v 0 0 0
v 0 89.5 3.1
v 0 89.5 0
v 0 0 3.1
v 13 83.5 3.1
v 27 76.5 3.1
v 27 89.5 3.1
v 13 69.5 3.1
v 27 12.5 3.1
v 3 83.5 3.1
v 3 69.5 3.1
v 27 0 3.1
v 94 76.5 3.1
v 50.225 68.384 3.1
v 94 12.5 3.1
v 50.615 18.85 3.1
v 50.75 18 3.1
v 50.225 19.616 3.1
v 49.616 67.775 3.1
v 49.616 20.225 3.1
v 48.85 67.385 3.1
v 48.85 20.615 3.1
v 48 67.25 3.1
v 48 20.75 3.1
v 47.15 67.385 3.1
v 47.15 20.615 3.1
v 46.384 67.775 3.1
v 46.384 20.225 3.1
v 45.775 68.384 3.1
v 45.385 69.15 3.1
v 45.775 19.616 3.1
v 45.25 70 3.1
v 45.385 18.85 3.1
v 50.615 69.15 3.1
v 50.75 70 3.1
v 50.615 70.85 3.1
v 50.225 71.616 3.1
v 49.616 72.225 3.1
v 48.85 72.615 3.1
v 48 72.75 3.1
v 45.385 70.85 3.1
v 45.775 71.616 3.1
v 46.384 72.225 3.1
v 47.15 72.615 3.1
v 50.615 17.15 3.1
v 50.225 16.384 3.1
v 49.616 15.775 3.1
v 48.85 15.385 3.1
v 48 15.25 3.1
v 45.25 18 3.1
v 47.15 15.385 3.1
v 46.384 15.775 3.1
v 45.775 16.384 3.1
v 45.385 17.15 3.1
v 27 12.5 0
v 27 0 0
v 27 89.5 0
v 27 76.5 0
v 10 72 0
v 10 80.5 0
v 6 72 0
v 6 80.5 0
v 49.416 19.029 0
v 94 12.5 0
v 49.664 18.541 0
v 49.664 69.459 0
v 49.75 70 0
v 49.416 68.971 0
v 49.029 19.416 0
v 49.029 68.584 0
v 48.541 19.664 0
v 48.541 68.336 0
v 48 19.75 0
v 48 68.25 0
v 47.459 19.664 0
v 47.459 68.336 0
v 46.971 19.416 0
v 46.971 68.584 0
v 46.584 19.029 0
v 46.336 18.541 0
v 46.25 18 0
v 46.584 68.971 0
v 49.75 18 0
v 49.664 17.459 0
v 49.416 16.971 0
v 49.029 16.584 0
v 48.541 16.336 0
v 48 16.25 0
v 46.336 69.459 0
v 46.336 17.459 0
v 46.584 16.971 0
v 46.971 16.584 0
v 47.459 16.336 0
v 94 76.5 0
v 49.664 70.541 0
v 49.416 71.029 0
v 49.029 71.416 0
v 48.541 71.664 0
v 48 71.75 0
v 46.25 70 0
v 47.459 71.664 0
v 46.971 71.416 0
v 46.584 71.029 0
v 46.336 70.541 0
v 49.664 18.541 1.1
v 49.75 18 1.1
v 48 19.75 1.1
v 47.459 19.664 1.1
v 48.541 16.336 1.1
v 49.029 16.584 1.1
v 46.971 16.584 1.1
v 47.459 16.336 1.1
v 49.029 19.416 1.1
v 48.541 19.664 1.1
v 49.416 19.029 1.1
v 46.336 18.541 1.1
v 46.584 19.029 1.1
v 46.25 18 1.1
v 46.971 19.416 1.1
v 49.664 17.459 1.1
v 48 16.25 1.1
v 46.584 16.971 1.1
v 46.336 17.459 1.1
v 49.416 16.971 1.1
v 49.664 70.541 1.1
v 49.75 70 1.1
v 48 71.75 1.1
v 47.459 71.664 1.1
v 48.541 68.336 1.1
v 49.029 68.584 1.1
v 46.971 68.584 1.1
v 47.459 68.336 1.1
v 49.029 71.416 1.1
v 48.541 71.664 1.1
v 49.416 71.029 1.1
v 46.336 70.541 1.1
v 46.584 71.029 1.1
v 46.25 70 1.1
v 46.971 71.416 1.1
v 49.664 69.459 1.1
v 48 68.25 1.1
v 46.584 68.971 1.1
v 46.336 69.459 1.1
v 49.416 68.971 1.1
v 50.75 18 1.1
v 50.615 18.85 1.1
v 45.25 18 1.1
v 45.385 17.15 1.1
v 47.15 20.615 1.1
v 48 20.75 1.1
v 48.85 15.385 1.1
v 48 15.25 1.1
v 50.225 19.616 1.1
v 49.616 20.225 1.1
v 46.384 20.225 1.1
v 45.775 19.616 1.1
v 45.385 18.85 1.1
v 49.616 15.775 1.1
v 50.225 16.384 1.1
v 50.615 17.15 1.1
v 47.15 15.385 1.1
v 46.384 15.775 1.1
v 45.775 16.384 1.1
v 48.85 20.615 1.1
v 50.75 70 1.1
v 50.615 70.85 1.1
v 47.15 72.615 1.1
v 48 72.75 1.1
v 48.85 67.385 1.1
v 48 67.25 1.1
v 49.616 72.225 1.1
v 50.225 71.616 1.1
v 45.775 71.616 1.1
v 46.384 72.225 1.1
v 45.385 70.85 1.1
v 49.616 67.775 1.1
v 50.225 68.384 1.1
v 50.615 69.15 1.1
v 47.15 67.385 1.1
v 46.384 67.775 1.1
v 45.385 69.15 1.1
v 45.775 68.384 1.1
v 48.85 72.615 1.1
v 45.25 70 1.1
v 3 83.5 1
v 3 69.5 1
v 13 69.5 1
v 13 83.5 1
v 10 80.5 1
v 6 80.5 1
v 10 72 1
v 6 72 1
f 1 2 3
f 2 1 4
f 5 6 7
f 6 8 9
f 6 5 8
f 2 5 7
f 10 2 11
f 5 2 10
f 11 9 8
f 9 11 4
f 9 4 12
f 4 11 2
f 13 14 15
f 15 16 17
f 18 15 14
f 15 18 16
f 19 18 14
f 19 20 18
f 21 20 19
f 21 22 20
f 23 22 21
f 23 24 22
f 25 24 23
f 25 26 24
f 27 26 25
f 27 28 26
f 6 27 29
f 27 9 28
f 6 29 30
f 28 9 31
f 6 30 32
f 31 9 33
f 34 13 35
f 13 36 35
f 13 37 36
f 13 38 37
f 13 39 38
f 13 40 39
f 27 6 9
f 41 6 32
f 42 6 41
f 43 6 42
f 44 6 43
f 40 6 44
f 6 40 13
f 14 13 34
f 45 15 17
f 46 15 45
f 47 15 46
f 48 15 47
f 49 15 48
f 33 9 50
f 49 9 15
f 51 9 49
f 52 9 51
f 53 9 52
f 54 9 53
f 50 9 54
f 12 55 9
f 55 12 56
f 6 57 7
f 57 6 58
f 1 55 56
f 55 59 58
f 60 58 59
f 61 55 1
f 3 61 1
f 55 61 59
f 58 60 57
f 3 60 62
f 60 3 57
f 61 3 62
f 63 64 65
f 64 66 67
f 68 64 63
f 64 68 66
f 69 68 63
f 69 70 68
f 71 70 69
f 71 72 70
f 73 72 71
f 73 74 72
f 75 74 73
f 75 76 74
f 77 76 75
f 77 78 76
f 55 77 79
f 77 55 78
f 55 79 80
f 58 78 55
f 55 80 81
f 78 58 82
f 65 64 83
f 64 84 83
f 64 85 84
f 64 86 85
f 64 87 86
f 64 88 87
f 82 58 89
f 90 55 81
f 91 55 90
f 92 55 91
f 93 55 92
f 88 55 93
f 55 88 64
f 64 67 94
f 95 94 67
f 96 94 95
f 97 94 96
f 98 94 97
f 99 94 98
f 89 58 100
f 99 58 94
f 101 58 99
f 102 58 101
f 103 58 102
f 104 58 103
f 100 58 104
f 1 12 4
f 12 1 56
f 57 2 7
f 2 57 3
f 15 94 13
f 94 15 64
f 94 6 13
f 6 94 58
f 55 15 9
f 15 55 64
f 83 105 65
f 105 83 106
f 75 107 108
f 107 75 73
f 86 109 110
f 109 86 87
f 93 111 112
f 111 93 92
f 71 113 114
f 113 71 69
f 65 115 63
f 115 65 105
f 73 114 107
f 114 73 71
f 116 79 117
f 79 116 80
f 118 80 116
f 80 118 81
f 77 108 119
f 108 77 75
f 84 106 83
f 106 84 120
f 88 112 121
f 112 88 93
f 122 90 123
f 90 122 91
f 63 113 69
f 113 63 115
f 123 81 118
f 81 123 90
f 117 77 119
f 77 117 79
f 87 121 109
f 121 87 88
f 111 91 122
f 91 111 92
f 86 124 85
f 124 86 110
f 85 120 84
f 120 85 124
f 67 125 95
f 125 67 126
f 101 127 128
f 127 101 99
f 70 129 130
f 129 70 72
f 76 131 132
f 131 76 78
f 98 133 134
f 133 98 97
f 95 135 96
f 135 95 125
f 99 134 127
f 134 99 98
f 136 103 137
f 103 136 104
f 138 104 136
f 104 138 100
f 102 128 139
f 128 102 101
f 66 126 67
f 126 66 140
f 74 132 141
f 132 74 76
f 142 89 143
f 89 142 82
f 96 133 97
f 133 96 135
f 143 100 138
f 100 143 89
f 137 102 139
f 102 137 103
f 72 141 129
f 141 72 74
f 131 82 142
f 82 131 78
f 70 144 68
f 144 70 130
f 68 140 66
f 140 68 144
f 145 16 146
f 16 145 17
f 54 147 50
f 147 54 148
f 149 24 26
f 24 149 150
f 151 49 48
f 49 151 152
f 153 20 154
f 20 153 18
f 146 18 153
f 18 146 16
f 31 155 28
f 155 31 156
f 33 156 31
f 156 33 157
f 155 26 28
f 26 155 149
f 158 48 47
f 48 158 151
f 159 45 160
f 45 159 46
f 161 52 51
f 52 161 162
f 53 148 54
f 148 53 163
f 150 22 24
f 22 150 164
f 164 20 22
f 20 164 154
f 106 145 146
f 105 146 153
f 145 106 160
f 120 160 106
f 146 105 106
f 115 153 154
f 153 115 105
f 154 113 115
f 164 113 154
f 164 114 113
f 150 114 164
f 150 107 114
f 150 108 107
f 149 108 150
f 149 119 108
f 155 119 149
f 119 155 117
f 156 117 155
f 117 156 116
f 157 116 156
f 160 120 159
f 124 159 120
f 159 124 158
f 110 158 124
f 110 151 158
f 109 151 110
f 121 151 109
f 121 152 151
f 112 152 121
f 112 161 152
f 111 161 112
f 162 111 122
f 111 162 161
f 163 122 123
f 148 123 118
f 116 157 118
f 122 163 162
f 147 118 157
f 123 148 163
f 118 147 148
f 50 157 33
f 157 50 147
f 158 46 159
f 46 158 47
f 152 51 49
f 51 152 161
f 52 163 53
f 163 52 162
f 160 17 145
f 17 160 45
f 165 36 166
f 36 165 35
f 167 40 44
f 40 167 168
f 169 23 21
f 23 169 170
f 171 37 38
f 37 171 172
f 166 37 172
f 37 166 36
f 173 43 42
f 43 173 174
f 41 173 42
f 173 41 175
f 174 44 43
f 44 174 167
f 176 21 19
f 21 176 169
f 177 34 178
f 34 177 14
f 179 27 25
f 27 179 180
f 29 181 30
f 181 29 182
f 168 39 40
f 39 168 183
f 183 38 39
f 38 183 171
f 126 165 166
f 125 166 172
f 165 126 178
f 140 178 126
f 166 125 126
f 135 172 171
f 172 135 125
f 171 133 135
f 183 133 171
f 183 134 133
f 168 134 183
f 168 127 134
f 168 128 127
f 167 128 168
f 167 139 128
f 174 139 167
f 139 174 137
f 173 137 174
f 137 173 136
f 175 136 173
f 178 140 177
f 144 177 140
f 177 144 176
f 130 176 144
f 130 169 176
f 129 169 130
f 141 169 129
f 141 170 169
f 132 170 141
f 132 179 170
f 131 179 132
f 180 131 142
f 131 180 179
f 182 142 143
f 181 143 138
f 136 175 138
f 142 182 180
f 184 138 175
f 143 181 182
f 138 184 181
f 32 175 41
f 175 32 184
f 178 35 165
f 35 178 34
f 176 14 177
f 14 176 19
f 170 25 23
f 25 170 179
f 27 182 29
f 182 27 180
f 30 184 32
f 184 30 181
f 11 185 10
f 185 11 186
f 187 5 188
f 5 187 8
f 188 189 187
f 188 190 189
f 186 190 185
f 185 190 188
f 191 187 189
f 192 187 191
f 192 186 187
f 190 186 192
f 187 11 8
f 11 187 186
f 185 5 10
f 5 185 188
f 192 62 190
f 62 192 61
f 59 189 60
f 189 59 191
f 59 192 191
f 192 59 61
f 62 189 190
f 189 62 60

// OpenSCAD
// file: alsaCam.scad
//creaAlsaCamara(5);
alsaCamTorR = 1;

// creaAlsaCamara(10);

module creaAlsaCamara( intAlsaCamH )
{    
    difference(){

        translate([-13,-2.9,0])
        cube([26,17,intAlsaCamH]);

        //Tornillos camara
        translate([-10,12,-0.1])
        cylinder(r=alsaCamTorR,intAlsaCamH+0.4,$fn=20);
        translate([10,12,-0.1])
        cylinder(r=alsaCamTorR,intAlsaCamH+0.4,$fn=20);
        translate([-10,-1,-0.1])
        cylinder(r=alsaCamTorR,intAlsaCamH+0.4,$fn=20);
        translate([10,-1,-0.1])
        cylinder(r=alsaCamTorR,intAlsaCamH+0.4,$fn=20);

    }
}
// file: ../../Letras.scad
if(0)
{
logo(10,2,2,4);
}

//dMin(10,2,2);
module dMin(iSize,iPared,iH)
{
    translate([iPared*1.59,0,0])
    {
    cMin(iSize*.53,iPared*.53,iH);
    translate([iPared*.75,0,0])
    cube([iPared,iSize,iH]);
    }
}

module tMin(iSize,iPared,iH)
{
  iSize = iSize*0.9;
  translate([0,iSize*.1,0])
  {
  difference()
  {
    hull()
    {
      translate([-iPared*.7,0,0])
      cube([iPared,iSize*1,iH]);

      cube([iSize*.4,iPared,iH]);

      translate([-iPared*.3,0,0])
      cylinder( r=(iPared*0.6), iH, $fn=100 );     
    }
    
    translate([iPared,iPared,-0.1])
    hull()
    {
      translate([-iPared*.7,0,0])
      cube([iPared,iSize*1,iH]);

      cube([iSize*.4,iPared,iH]);

      translate([-iPared*.35,0,0])
      cylinder( r=(iPared*0.6), iH+2, $fn=100 );     
    }
    
    translate([iSize*.28,-iSize*.4,-0.1])
    cube([iSize,iSize,iH+2]);
    
  }
  
  translate([-(iSize*.35),iSize*.6,0])
  cube([iSize*.6,iPared,iH]);
  
  }
        
}


module eLe(iSize,iPared,iH)
{
    translate([-iPared*.7,0,0])
    cube([iPared,iSize*1,iH]);
    
    cube([iSize*.4,iPared,iH]);
}

module hMin(iSize,iPared,iH)
{
    puente(iSize,iPared,iH);
    
    translate([-iPared*.7,0,0])
    cube([iPared*.85,iSize*1,iH]);
   
}

module nMin(iSize,iPared,iH)
{
    puente(iSize,iPared,iH);
    
    translate([-iPared*.7,0,0])
    cube([iPared*.85,iSize*.57,iH]);
   
}

module cMin(iSize,iPared,intcH)
{
    translate([0,iSize*0.6,0])
    {
    difference()
    {
        oMin(iSize, intcH);
        
        translate([0,-iPared*1.15,-0.1])
        cube([iSize*.8,iPared*2.2,intcH+1]);
    }
    }
}




module Te(iSize, iPared)
{
    translate([-(iPared*1/2),0,0])
    cube( [iPared*1, iSize, leth] );
    
    translate([-(iSize*0.8)/2,iSize-iPared*1,0])
    cube( [iSize*0.8,iPared*1, leth] );
}

module oMin(intoSize, intoH)
{
  difference()
  {
    cylinder( r=(intoSize*0.6), intoH, $fn=100 );
    
    translate([0,0,-0.1])
    cylinder( r=(intoSize*0.3), intoH*2, $fn=100 );
    //cylinder( r=(iSize/2)-iPared, iH+1, $fn=100 );
  }
}



module eMin(iSize,iPared,inteH)
{
    rotate([0,0,10])
    translate([0,iSize*0.0,0])
    {
    difference()
    {
        translate()
        cMin(iSize, iPared*1.8, inteH);
        
        translate([0,-iPared*1.3,-0.1])
        cube([iSize*.8,iPared,inteH+1]);
    }
    
    rotate([0,0,15])
    translate([-iSize*.15,iPared*4,0])
    cube([iSize*.9,iPared*3.5,inteH]);
    }
}

module De(iSize,iPared,iH)
{
  translate([0, iSize/2, 0])
  difference()
  {
      mediaLuna(iSize, iH);
      
      translate([-(iSize*0.08), 0, -0.5])
      mediaLuna(iSize*0.8, iH+1);
  }
  
  translate([0,iPared*.2,0])
  cube([iPared*.8, iSize*.9, iH]);
}


module mediaLuna(iSize, iH)
{
  difference()
  {
    cylinder( r=iSize/2, iH, $fn=100 );
      
    translate([-iSize, -iSize/2, -0.1])
    cube(iSize,iSize,iH);
  }
}

module puente(iSize,iPared,iH)
{
    
    difference()
    {
        
    hull()//Exterior
    {
        translate([iSize*0.37,iSize*0.45,0])
        cylinder(r=iPared*.5,iH,$fn=50);
        
        cube([iSize*0.45,iSize*0.51,iH]);
    }
    
    translate([-iPared*.8,-iPared*.8,-0.1])
    hull()//Interior
    {
        translate([iSize*0.42,iSize*0.5,0])
        cylinder(r=iPared*.3,iH,$fn=50);
        
        cube([iSize*0.47,iSize*0.47,iH+1]);
    }
    
    }
}

module oCua(iSize,iH)
{
    cube([iSize*0.4,iSize*0.4,iH]);
    
    translate([iSize*0.5,0,0])
    difference()
    {
        cube([iSize*0.15,iSize*0.6,iH]);
        
        translate([-iSize*0.15,-iSize*0.11,-0.1])
        rotate([0,0,-45])
        cube([iSize*0.25,iSize*0.6,iH*2]);
        
        
        translate([-iSize*0.35,iSize*0.45,-0.1])
        rotate([0,0,-45])
        cube([iSize*0.25,iSize*0.6,iH*2]);
    }
    
    translate([-iSize*.05,iSize*0.06,0])
    difference()
    {
        translate([-iSize*.1,iSize*.445,0])
        cube([iSize*.8,iSize*0.15,iH]);
        
        translate([iSize*0.3,iSize*0.3,-0.1])
        rotate([0,0,-45])
        cube([iSize*0.25,iSize*0.6,iH*2]);
        
        translate([-iSize*0.28,iSize*0.45,-0.1])
        rotate([0,0,-45])
        cube([iSize*0.25,iSize*0.6,iH*2]);

    }
    
    
    
    
}

module logoSimple(letsize,letpared,leth,letoffset)
{
    //De(letsize,letpared,leth);
    dMin(letsize,letpared,leth);
    
    translate([(letsize*0.59)+(1*letoffset),letsize*0,0])
    oCua(letsize,leth);
    
    translate([(letsize*1.5)+(2*letoffset),0,0])
    tMin(letsize,letpared*.8,leth);   
    
    translate([(letsize*2.1)+(3*letoffset),0,0])
    eMin(letsize*.53,letpared*.3,leth);
    
    translate([(letsize*2.8)+(4*letoffset),0,0])
    cMin(letsize*.53,letpared*.53,leth);
    
    translate([(letsize*3.3)+(5*letoffset),0,0])
    hMin(letsize,letpared,leth);

    
}

module logo(letsize,letpared,leth,letoffset)
{
    //De(letsize,letpared,leth);
    dMin(letsize,letpared,leth);
    
    translate([(letsize*0.59)+(1*letoffset),letsize*0,0])
    oCua(letsize,leth);
    
    translate([(letsize*1.5)+(2*letoffset),0,0])
    tMin(letsize,letpared*.8,leth);   
    
    translate([(letsize*2.1)+(3*letoffset),0,0])
    eMin(letsize*.53,letpared*.3,leth);
    
    translate([(letsize*2.8)+(4*letoffset),0,0])
    cMin(letsize*.53,letpared*.53,leth);
    
    translate([(letsize*3.3)+(5*letoffset),0,0])
    hMin(letsize,letpared,leth);
    
    translate([(letsize*4)+(6*letoffset),leth*.75,0])
    cylinder(r=letpared*.75,leth,$fn=50);
    
    translate([(letsize*4.45)+(7*letoffset),0,0])
    nMin(letsize,letpared,leth);
    
    translate([(letsize*5.3)+(8*letoffset),0,0])
    eMin(letsize*.5,letpared*.3,leth);
    
    translate([(letsize*5.85)+(9*letoffset),0,0])
    tMin(letsize,letpared*.8,leth);

    
}
// file: Frame.scad
include <Diffracter.scad>

frameW = 80-1.5;//Real hole width - burr
frameH = 75-1.5;//Real hole height - burr
frameD = 2.5;

winW = frameW - 8;
winH = frameH - 16;

slideW = winW + 4;
slideH = winH + 10;
slideD = 0.8;

//Activate this to display
if(false)
{
  Frame();
}

module Frame()
{
difference()
{

  translate([-frameW/2,-frameH/2,0])
  cube([frameW,frameH,frameD]);

  //areaSello();
  translate([-winW/2,-winH/2,-0.1])
  cube([winW,winH,frameD*2]);

  translate([-slideW/2,-slideH/2,frameD-slideD])
  cube([slideW,slideH,2]);

}
}


module areaSello()
{
  //cylinder(r=(raspSellR/2)-1,frameD);

  translate([-(frameW)/2,-(frameH)/2,0])
  cube([frameW,frameH,frameD]);
}
// file: Camara.scad
include <Sello35GradosCorto.scad>
include <alsaCam.scad>
include <../../library.scad>


camaraPared  = 8;

tuboSellDiam = 52+3;//52mm+2 holgura
tuboSellR = tuboSellDiam / 2;
tuboSellP = 3.5;//Profundidad del sello


camCableX = 1.4;
camCableY = 20;

if( 0 )
{
    creaCamBase();
}


module creaCamBase()
{
    difference()
    {
        //Pared
        translate([-(bigW-2)/2,-(bigW-2)/2,0])
        cube( [(bigW-2),(bigW-2),camaraPared] );
        
        //Sello hembra
        translate([0,0,camaraPared-4])
        huyoMasPared(68,7,4.2,$fn=100);
        //Ahorro de material
        translate([0,0,camaraPared-4])
        huyoMasPared(42,11,4.2);
        
        //Pasa cable
        pasaCable();
        
        //Tornillos
        tornPass();
        
        
    }
    
    //translate([0,0,10])
    creaAlsaCamara( 25 );
}

module pasaCable()
{
    //Pasa cable
    rotate([0,0,90])
    translate([-15, -camCableY/2, -0.1])
    cube( [camCableX, camCableY, 20] );
}
// file: Sello35GradosCorto.scad
include <Diffracter.scad>
include <Frame.scad>
include <../../library.scad>

include <../../Letras.scad>

// 3.15° for every 100 l/mm

angulo = 35;

coberW = bigW+6;
coberH = 6;
coberOffset = 9;//Posición del tubo
coberOffset2 = 5;//Altura del tubo (-7)->(-8)
cobeSellH = 4;
cobeSellW1 = 7;
cobeSellW2 = 7;

torrRadio = 2;
conoRadio = 38.8;

camCubeW = 62;
camCubeH = 70;
camCubeD = 7;



//soporteCylinder(radio=29,altura=coberH);	
//soporteOval(ancho=28, largo=25, alto=coberH);
//soporteCylinder(radio=34,altura=coberH);
//frameSello();

if(false)
{
    translate([0,coberW/2,0])
    creaSello();
    
    
}

// translate([33,25,cobeSellH+1.1])
// %cube([40,40,1]);


module creaCamBase()
{
    difference()
    {
        //Pared
        cube( [camCubeW,camCubeH,camCubeD] );
        
        //Tornillos
        tornillosBaseCamara( camCubeD + 0.4 );
        
    }
}

module tornillosBaseCamara( intBaseCamTorH )
{
    translate( [12,4,-0.2] )
    huecoParaTornillo(intBaseCamTorH);        
    translate( [12,camCubeH-4,-0.2] )
    huecoParaTornillo(intBaseCamTorH);
    
    translate( [camCubeW-4,4,-0.2] )
    huecoParaTornillo(intBaseCamTorH);
    
    translate( [camCubeW-4,camCubeH-4,-0.2] )
    huecoParaTornillo(intBaseCamTorH);
}

module creaSello()
{
    difference()
    {
    createAll();

    translate([-100,-100,-200])
    cube([200,200,200]);
    
    translate([bigW*.22,bigW*.33,coberH-0.5])
    oCua(24,2);

    }   
}

module createAll()
{

difference()
{
areaExterna();

//Tubo Interno
translate([23-coberOffset,0,-32.9+coberOffset2])
rotate([0,-angulo,0])/*3.15 cada 100 (antes 40)*/
//cylinder (r1 = conoRadio, r2 = (51.7-6)/2, h = 70, $fn = 100);
cylinder (r1 = conoRadio, r2 = (51.7-8)/2, h = 70, $fn = 100);

//Cuadro de la pared
creaContorno();
translate([-bigW/2,-bigW/2,-40+coberH-6])
cube([bigW,bigW,40]);

//Tornillos
tornPass();

//Contorno
creaContorno();

}

//creaSelloMacho();

}



module huecoParaTornillo( intTorH )
{
    cylinder(r=torrRadio,intTorH,$fn=20);
}

module huecoParaCabezaTornillo( cabezaR,  intTorH )
{
    cylinder(r=cabezaR,intTorH,$fn=20);
}



module creaContorno()
{

 difference()
 {
   translate([-(coberW-4.5)/2,-(coberW-4.5)/2,-3])
   cube([(coberW-4.5),(coberW-4.5),coberH]);

   translate([-(coberW-15)/2,-(coberW-23)/2,-3])
   cube([(coberW-15),(coberW-23),coberH]);
 }
}



module creaSelloMacho()
{

 translate([0,0,coberH-cobeSellH])
 difference()
 {
  areaSello(frameD=cobeSellH);

  translate([-(frameW-cobeSellW1)/2,-(frameH-cobeSellW2)/2,-0.1])
  cube([frameW-cobeSellW1,frameH-cobeSellW2,cobeSellH+1]);
 }
}

module areaExterna()
{
//Cobertura
translate([-coberW/2,-coberW/2,0])
cube([coberW,coberW,coberH]);

//TuboExterno
translate([23-coberOffset,0,-33+coberOffset2])
rotate([0,-angulo,0])/*3.15 cada 100 (antes 40)*/
//cylinder(r=(51.7)/2,48);
cylinder (r1 = conoRadio+3, r2 = 51.7/2, h = 70, $fn = 100);

//Áre para sellar la cámara
translate([-45.5,-camCubeH*.5,4])
rotate([0,-angulo,0])
creaCamBase();
    
}


module recorteOval()
{
  translate([-0.4,0,-1.9])
  oval(26.8,22.9, 15, center = false);
}

module tornPass()
{
translate([-ori+4,-ori+4,-0.1])
cylinder(r=torrRadio,30);
translate([ori-4,-ori+4,-0.1])
cylinder(r=torrRadio,30);
translate([-ori+4,ori-4,-0.1])
cylinder(r=torrRadio,30);
translate([ori-4,ori-4,-0.1])
cylinder(r=torrRadio,30);
}
// file: Diffracter.scad
//include <Tapa.scad>
include <../../library.scad>


bigW = 88;
ori = bigW/2;
raspSellR = 59;
tuboH = 140;
H = 18.5 + 9;
selloH = 7;
tornR = 2;

huecoPared = 12;
huecoH = 22;
selloHembraRadio=40;

//Activate this to display
if(0)
{
//translate([0,0,bigW/2])
//rotate([0,90,0])
diffracter();


//soporteCylinder(radio=25.2,altura=3.8);

}


module diffracter(){	

difference(){

//Bloque
translate([-bigW/2,-bigW/2,0])
cube([bigW,bigW,H]);

/*
translate([
						-(bigW-huecoPared)/2,
						-(bigW-huecoPared)/2,
						(huecoH/2)
					])
		cube([
					bigW-huecoPared,
					bigW-huecoPared,
					H-huecoH]
				);*/


//Diffractador
translate([-37.25,-40,-0.1])
cube([74.5,80,5.6]);

//Macro
translate([0,0,5.4])
cylinder(r=(74.5/2),8.2,$fn=100);

//Sello de raspberry
//translate([0,0,-0.1])
//cylinder(r=(raspSellR/2)+1,2);

//Tubo
//translate([0,0,-0.1])
//cylinder(r=(52/2),200);

//Tornillos abajo
translate([-ori+4,-ori+4,-0.1])
cylinder(r=tornR,20);
translate([ori-4,-ori+4,-0.1])
cylinder(r=tornR,20);
translate([-ori+4,ori-4,-0.1])
cylinder(r=tornR,20);
translate([ori-4,ori-4,-0.1])
cylinder(r=tornR,20);

//Hueco
cylinder(r=36,H+1);

//Tornillos caja
translate([0,0,(tuboH/2)-7])
rotate([0,90,0])
tornillosArriba();

//Tornillo tripie
translate([-ori-0.1,0,(tuboH/2)+7])
rotate([0,90,0])
cylinder(r=5/2,5.31);

//Sello hembra
//translate([0,0,H-3])
//cylinder(r=selloHembraRadio,4);

}

//Sello cobertura
//translate([0,0,H-1])
//huyoMasPared(58,3,3);


}
// file: ../../library.scad
module tubo(
	h/*Altura*/,
	w/*Pared*/,
	d/*Diametro*/
){
  difference()
  {
    cylinder(r=(d/2), h);
    translate([0,0,-0.1])
    cylinder(r=(d/2)-(2*w), h+0.2);
  }
}

module huyoMasPared(
	d/*Diametro del hoyo*/,
	w/*Pared*/,
	h/*Altura*/,
){
  difference()
  {
    cylinder(r=((d+(2*w))/2), h);
    translate([0,0,-0.1])
    cylinder(r=(d/2), h+0.2);
  }
}

module cuboMasPared(
    w1, //Largo
    w2, //Ancho
    p1, //Pared
    p2, //Pared
    h   //Alto
)
{    
    difference()
    {
        translate([-(w1+(p1*2))/2,-(w2+(p2*2))/2,0])
        cube([(w1+(p1*2)),(w2+(p2*2)),h]);
        
        translate([-w1/2,-w2/2,-0.2])
        cube([w1,w2,h*2]);
        
    }
    
    
}

soporteW = 0.7;

module soporteCylinder()
{
  difference()
  {
	cylinder(r=radio,altura);

	translate([0,0,-0.1])
	cylinder(r=radio-soporteW,altura+0.2);
  }

  if(true){
  difference()
  {
	cylinder(r=radio+0.75,1);

	translate([0,0,-0.1])
	cylinder(r=radio-0.75,1.25);
  }}

}

module soporteOval()
{
  difference()
  {
	oval(w=ancho, h=largo, height=alto, center = false);

	translate([0,0,-0.1])
	oval(ancho-soporteW, largo, alto+0.2);
  }

  difference()
  {
	oval(w=ancho+1, h=largo+1, height=1, center = false);

	translate([0,0,-0.1])
	oval(w=ancho-1, h=largo-1, height=1.25, center = false);
  }

}


module oval(w,h, height, center = false)
{
  scale([1, h/w, 1]) cylinder(h=height, r=w, center=center);
}
// file: camaraCaja.scad
include <Sello35GradosCorto.scad>
include <../../library.scad>
include <Camara.scad>



//**************************
// Importados de la creación
// de la caja de raspberry pi
//**************************
pared = 4;
pared2 = 2*pared;
medPared = pared/2;

raspX = 56;//58
raspY = 85;//85
raspZ = 15.5;//15.5
raspD1 = 3.45;
raspDP = 22.5;
raspD2 = raspDP+pared2;//Altura lados
raspAlza = 2.6;//2.6
//**************************

cajaBaCamH = 5;
camCableX = 1;

if( 0 )
{
    mainCaja();
}


module mainCaja()
{
//translate([0,0,1])
difference()
{
    
    creaCaja();
    
    translate([-(bigW+2)/2,-(bigW+2)/2,-0.1])
    cube([bigW+2,bigW+2,3]);
}

creaTrabes();

}



trabesH = 2.7;
module creaTrabes()
{
    translate([-29,-20,0])
    cube([58,2,trabesH]);
    
    translate([-29,-39,0])
    cube([58,2,trabesH]);
    
    translate([-20,0,0])
    cube([49,2,trabesH]);
    
    translate([-29.5,0,0])
    cube([5.5,2,trabesH]);
    
    translate([-29,37,0])
    cube([58,2,trabesH]);
    
    translate([-29,17,0])
    cube([58,2,trabesH]);
    
    translate([-1,-37,0])
    cube([2,74,trabesH]);

    
}


//
//translate([20,-46,-5])
//%cube([13,13,13]);

module creaCaja()
{
    difference()
    {
        //Toda el área
        //translate([0,-1,2])//Pone a nivel
        camBaCajAreaExterna();
        
        //Pasa Cable
        pasaCable();
        
         //Tornillos
        tornPass();
                
    }
    
   
   
    

    
    
    
    
    
    

    
}

module pasaCable()
{
    //Pasa cable
    //rotate([0,0,-90])
    translate([-(camCubeW/2)+8, -camCableY/2, -0.1])
    cube( [camCableX, camCableY, 20] );
}

module camBaCajAreaExterna()
{
    //Pared
    translate([-(coberW/2),-(coberW/2), 0])
    cube([coberW,coberW,6]);
    
    //Caja de raspberry pi
    translate([-(raspX/2)+3,(-raspY/2),2])
    camaraBaseCaja();
    
    
    
    
    //cube( [camCubeW,camCubeH,camaraPared] );
    
}



module camaraBaseCaja()
{

difference()
{
bigCaja();

translate([-medPared,-medPared, raspD2-pared+0.1])
cube([raspX+pared,raspY+pared,pared]);

translate([2.4,-medPared-(medPared/2),pared+raspAlza+1.3])
cube([16,medPared,11.3]);

translate([2.4,-pared-(medPared/2)-0.1,pared+raspAlza+1.3])
cube([16,medPared,11.3]);

}
}



module bigCaja()
{
crearRaspCard();
ladoConnector();
ladoUSB();
ladoMiniSD();
ladoPines();
}


module ladoPines()
{
translate([raspX,-pared,0])
cube([pared,raspY+pared2,raspD2]);
}


module ladoMiniSD()
{
difference()
{
translate([-pared,raspY,0])
cube([raspX+pared+1,pared,raspD2]);

translate([(raspX/2)-8,raspY-1,pared])
cube([15,medPared+1,50]);
}

}

module ladoUSB()
{

difference()
{

translate([-pared,-pared,0])
cube([raspX+pared+1,pared,raspD2]);

translate([1,-medPared,pared+raspAlza])
cube([54,medPared+0.1,22]);

}

}





module ladoConnector()
{


translate([-pared,-1,raspD2-pared])
cube([medPared,raspY+2,pared]);

difference()
{
translate([-pared,-1,0])
cube([pared,raspY+2,raspD2]);

translate([-pared-1,raspY-16.4,5.8])
cube([2.2,12,8]);

translate([-2,27.5,pared+2])
cube([3.1,35,25]);

translate([-1,68.5,pared+2])
cube([2,12,25]);

translate([-pared+1,raspY-14.4,pared+raspAlza+1.4])
{
	cube([1,8,3.3]);
	translate([1.1,0,0])
	cube([1,8,3.3]);
}

}

}







module crearRaspCard()
{
	cube([raspX,raspY,pared]);
	cuatroTorn(3);

	translate([-1,-1,0])
	cube([raspX+2,raspY+2,pared]);

}



module cuatroTorn(radio)
{
	translate([raspD1,raspY-raspD1,0])
	cylHue(pared+raspAlza,radio);

	translate([raspX-raspD1,raspY-raspD1,0])
	cylHue(pared+raspAlza,radio);

	translate([raspD1,23.5,0])
	cylHue(pared+raspAlza,radio);

	translate([raspX-raspD1,23.5,0])
	cylHue(pared+raspAlza,radio);

}

module cylHue(h,radio){
	difference()
	{
		cylinder(r=radio,h,$fn=20);
		translate([0,0,pared-1])
		cylinder(r=1.5,h,$fn=20);
	}
}

module tornillosBaseCamaraCabeza( intCabezaR, intCabezaH )
{
    translate( [12,4,-0.2] )
    huecoParaCabezaTornillo(intCabezaR, intCabezaH);        
    translate( [12,camCubeH-4,-0.2] )
    huecoParaCabezaTornillo(intCabezaR, intCabezaH);        
    
    translate( [camCubeW-4,4,-0.2] )
    huecoParaCabezaTornillo(intCabezaR, intCabezaH);        
    
    translate( [camCubeW-4,camCubeH-4,-0.2] )
    huecoParaCabezaTornillo(intCabezaR, intCabezaH);        
}
// file: navaja.scad
include <../../library.scad>
include <Diffracter.scad>
//include <lente.scad>

pared = 3;


//lenRIntNavajas = 19/2;
lenIntHNavajas = 4;//3.6

offsetRanura = -0.35;//-.
offsetNavaja = 0.5;//0
offsetPosDer = 0.0;

navW = 21.5+offsetNavaja;
navH = 43;
navP = 3;//3
navTorR = 1.35;//1.2
navSepW = 9.2+offsetRanura;
navSepH = 2;


navBigW = (navW*2) + (pared*2);
navBigH = navH + pared;

navajasH = navP+lenIntHNavajas;

navajasH = 6;//8 //Quitar para altura real

soloProbar = 0;

navHoleRad = 14;

if( 0 )
{
    if( soloProbar )
    {
        difference()
        {
            translate([0,0,navajasH])
            rotate([0,180,0])
            creaNavajas( navajasH );
            
            translate([0,0,-0.2])
            cuboMasPared(49,49,30,30,15);
            
        }
    }
    else
    {
        translate([0,0,navajasH])
        rotate([0,180,0])
        creaNavajas( navajasH );
    }
}




module creaNavajas( intH )
{


//%cylinder(r=34,15);
difference()
{
    //Área navajas-lente
    translate([-bigW/2,-bigW/2,0])
    cube([bigW,bigW,intH]);
    
    //Recorte área navaja
    translate([-navW-offsetPosDer,-navH/2,-0.1])
    cube([(navW*2),navH,navP]);
    
    //Área tapón
    //translate([0,0,navP-0.4])
    cylinder(r=navHoleRad,intH+0.1);
    
    //Tornillitos
    translate([-navW/2,13,0])
    cylinder(r=navTorR,navP+lenIntHNavajas-0.1,$fn=20);
    translate([navW/2,13,0])
    cylinder(r=navTorR,navP+lenIntHNavajas-0.1,$fn=20);
    translate([-navW/2,-13,0])
    cylinder(r=navTorR,navP+lenIntHNavajas-0.1,$fn=20);
    translate([navW/2,-13,0])
    cylinder(r=navTorR,navP+lenIntHNavajas-0.1,$fn=20);
    
    //Tornillos abajo
    translate([-ori+4,-ori+4,-0.1])
    cylinder(r=tornR,20,$fn=20);
    translate([ori-4,-ori+4,-0.1])
    cylinder(r=tornR,20,$fn=20);
    translate([-ori+4,ori-4,-0.1])
    cylinder(r=tornR,20,$fn=20);
    translate([ori-4,ori-4,-0.1])
    cylinder(r=tornR,20,$fn=20);
    
    //Sello
    translate([0,0,-0.1])
    huyoMasPared(
                   64,//73
                   35,//30
                   intH+1
                  );
    //translate([0,0,-0.1])
    //cylinder(r=selloHembraRadio,4);
    
}

//translate([0,0,pared-lenP+0.2])
//translate([0,0,navajasH-lenP+0.4])
//thread_in_pitch(lenDiam,lenP,1.7);

translate([-navSepW/2,-navH/2,0])
cube([navSepW,navSepH,navP]);

translate([-(navSepW/2),(navH/2)-navSepH,0])
cube([navSepW,navSepH,navP]);



}
// main file
include <navaja.scad>
include <camaraCaja.scad>



cubeP = 3;
cubeX = 70;
cubeY = 68;
cubeZ = 60+2+5;
cubeRad = 55/2;
cubeRan = 2;
cubeRanP = 2;

tornLen = 12;

techoX = 50;
techoY = 40;
techoZ = 20;

if( 1 )
{
    translate([-2,-2,-59])
    translate([0,0,-5])
    allTapaInside();
    
    //mainCube();
}

module mainCube()
{
    difference()
    {      
        //Slots y Rasp-Caja
        allAreaSlotsAndCam();
        
        //Ceja
        allTapa();
        
        //Tornillos de tapa
        tornTapa( 1.5, 12 );
        
        
        
    }
}




module allTapaInside()
{
    difference()
    {
        areaAllTapaInside();
    
        //Tornillos de tapa
        translate([0,0,8])
        tornTapa( 1.75, 12 );
        
        //Tornillos Cabeza
        translate([0,0,6])
        tornTapa( 2.75, 5 );
        
        //Connector contorno
        translate([5,71.5,65])//63.5
        cube([10,14,10]);
        
        //Connector 
        translate([8,74,62])//62.5
        cube([4,8.5,10]);
    
    }
}

module areaAllTapaInside()
{
    //Lado cámara
    translate([2,2,64])
    cube([27,89.5,3.1]);
    
    //Lado slots
    translate([27,14.5,64])
    cube([69,64,3.1]);
}


module allTapa()
{
    //Lado cámara
    translate([1.5,1.5,64])
    cube([28,90.5,3.1]);
    
    //Lado slots
    translate([26.5,14,64])
    cube([70,65,3.1]);
}

module tornTapa(intR, intH)
{
    translate([50,20,64-intH+0.1])
    cylinder(r=intR,intH,$fn=20);
    
    translate([50,72,64-intH+0.1])
    cylinder(r=intR,intH,$fn=20);
}

module allAreaSlotsAndCam()
{

    //Slots
    translate([(raspD2+cubeX-3),((raspY/2)+pared),0])
    rotate([0,0,180])
    slots();

    //Caja
    translate([0,pared,(raspX+pared)])
    rotate([0,90,0])
    camaraBaseCajaInt();
}


module camaraBaseCajaInt()
{

//Cam paredes
translate([-medPared-2-3,-medPared, raspD2-pared+1])
cube([raspX+pared+2+3,12,3]);
translate([-medPared-2-3,raspY-13, raspD2-pared+1])
cube([raspX+pared+2+3,17,3]);


difference()
{
bigCajaInt();
//Ceja anterior
//translate([-medPared-5,-medPared, raspD2-pared+0.1])
//cube([raspX+pared+5,raspY+pared,pared]);

translate([2.4,-medPared-(medPared/2),pared+raspAlza+1.3])
cube([16,medPared,11.3]);

translate([2.4,-pared-(medPared/2)-0.1,pared+raspAlza+1.3])
cube([16,medPared,11.3]);

}
}

module bigCajaInt()
{
crearRaspCardInt();
ladoConnector();
ladoUSBInt();
ladoMiniSDInt();
ladoPines();
}

module crearRaspCardInt()
{
    translate([-4-3,0,0])
	cube([raspX+5+3,raspY,pared]);
	cuatroTorn(3);

}

module ladoMiniSDInt()
{
    difference()
    {
    translate([-pared-3,raspY,0])
    cube([raspX+pared+1+3,pared,raspD2]);

    translate([-15,raspY-0.5,pared])
    cube([70,medPared+1,14]);
    }

}

module ladoUSBInt()
{

    difference()
    {

    translate([-pared-3,-pared,0])
    cube([raspX+pared+1+3,pared,raspD2]);

    translate([-15,-medPared,pared+raspAlza])
    cube([70,medPared+0.1,21]);

    }

}




module slots()
{

    difference()
    {
        creaArea();
        
        //Cannon | Macro and Slide
        translate([2,0,0])
        genericCube(7+14);
        
        //Diffracter
        translate([23+30,0,0])
        genericCube(4);
        //genericCube(4);
        
        //Camera
        translate([57+5,0,0])
        genericCube(6);
        
        //Tornillos
        //tornillos();
        
        //Techo        
        translate([21,-19,45])
        cube([techoX,techoY,techoZ]);
        
    }

}

module tornillos()
{
    translate([cubeX/2,-(cubeY/2)+tornLen-1,5])
    rotate([90,0,0])
    cylinder(r=2,tornLen,$fn=30);
    
    translate([cubeX/2,(cubeY/2)+1,5])
    rotate([90,0,0])
    cylinder(r=2,tornLen,$fn=30);
}

module genericCube(intH)
{
    translate([0,-30,cubeRanP])
    cube([intH,60,60+10]);
}


module creaArea()
{
    difference()
    {
        translate([0,-cubeY/2,0])
        cube([cubeX,cubeY,cubeZ]);
    
        translate([-0.1,0,cubeRad+cubeP])
        rotate([0,90,0])
        cylinder(r=cubeRad,cubeX+1,$fn=100);
        
    }
}

module navajaCuadro( intH )
{
    difference()
    {
        translate([0,0,intH])
        rotate([0,180,0])
        creaNavajas( intH );
        
        translate([0,0,-0.2])
        cuboMasPared(49,49,30,30,15);
        
    }
}
